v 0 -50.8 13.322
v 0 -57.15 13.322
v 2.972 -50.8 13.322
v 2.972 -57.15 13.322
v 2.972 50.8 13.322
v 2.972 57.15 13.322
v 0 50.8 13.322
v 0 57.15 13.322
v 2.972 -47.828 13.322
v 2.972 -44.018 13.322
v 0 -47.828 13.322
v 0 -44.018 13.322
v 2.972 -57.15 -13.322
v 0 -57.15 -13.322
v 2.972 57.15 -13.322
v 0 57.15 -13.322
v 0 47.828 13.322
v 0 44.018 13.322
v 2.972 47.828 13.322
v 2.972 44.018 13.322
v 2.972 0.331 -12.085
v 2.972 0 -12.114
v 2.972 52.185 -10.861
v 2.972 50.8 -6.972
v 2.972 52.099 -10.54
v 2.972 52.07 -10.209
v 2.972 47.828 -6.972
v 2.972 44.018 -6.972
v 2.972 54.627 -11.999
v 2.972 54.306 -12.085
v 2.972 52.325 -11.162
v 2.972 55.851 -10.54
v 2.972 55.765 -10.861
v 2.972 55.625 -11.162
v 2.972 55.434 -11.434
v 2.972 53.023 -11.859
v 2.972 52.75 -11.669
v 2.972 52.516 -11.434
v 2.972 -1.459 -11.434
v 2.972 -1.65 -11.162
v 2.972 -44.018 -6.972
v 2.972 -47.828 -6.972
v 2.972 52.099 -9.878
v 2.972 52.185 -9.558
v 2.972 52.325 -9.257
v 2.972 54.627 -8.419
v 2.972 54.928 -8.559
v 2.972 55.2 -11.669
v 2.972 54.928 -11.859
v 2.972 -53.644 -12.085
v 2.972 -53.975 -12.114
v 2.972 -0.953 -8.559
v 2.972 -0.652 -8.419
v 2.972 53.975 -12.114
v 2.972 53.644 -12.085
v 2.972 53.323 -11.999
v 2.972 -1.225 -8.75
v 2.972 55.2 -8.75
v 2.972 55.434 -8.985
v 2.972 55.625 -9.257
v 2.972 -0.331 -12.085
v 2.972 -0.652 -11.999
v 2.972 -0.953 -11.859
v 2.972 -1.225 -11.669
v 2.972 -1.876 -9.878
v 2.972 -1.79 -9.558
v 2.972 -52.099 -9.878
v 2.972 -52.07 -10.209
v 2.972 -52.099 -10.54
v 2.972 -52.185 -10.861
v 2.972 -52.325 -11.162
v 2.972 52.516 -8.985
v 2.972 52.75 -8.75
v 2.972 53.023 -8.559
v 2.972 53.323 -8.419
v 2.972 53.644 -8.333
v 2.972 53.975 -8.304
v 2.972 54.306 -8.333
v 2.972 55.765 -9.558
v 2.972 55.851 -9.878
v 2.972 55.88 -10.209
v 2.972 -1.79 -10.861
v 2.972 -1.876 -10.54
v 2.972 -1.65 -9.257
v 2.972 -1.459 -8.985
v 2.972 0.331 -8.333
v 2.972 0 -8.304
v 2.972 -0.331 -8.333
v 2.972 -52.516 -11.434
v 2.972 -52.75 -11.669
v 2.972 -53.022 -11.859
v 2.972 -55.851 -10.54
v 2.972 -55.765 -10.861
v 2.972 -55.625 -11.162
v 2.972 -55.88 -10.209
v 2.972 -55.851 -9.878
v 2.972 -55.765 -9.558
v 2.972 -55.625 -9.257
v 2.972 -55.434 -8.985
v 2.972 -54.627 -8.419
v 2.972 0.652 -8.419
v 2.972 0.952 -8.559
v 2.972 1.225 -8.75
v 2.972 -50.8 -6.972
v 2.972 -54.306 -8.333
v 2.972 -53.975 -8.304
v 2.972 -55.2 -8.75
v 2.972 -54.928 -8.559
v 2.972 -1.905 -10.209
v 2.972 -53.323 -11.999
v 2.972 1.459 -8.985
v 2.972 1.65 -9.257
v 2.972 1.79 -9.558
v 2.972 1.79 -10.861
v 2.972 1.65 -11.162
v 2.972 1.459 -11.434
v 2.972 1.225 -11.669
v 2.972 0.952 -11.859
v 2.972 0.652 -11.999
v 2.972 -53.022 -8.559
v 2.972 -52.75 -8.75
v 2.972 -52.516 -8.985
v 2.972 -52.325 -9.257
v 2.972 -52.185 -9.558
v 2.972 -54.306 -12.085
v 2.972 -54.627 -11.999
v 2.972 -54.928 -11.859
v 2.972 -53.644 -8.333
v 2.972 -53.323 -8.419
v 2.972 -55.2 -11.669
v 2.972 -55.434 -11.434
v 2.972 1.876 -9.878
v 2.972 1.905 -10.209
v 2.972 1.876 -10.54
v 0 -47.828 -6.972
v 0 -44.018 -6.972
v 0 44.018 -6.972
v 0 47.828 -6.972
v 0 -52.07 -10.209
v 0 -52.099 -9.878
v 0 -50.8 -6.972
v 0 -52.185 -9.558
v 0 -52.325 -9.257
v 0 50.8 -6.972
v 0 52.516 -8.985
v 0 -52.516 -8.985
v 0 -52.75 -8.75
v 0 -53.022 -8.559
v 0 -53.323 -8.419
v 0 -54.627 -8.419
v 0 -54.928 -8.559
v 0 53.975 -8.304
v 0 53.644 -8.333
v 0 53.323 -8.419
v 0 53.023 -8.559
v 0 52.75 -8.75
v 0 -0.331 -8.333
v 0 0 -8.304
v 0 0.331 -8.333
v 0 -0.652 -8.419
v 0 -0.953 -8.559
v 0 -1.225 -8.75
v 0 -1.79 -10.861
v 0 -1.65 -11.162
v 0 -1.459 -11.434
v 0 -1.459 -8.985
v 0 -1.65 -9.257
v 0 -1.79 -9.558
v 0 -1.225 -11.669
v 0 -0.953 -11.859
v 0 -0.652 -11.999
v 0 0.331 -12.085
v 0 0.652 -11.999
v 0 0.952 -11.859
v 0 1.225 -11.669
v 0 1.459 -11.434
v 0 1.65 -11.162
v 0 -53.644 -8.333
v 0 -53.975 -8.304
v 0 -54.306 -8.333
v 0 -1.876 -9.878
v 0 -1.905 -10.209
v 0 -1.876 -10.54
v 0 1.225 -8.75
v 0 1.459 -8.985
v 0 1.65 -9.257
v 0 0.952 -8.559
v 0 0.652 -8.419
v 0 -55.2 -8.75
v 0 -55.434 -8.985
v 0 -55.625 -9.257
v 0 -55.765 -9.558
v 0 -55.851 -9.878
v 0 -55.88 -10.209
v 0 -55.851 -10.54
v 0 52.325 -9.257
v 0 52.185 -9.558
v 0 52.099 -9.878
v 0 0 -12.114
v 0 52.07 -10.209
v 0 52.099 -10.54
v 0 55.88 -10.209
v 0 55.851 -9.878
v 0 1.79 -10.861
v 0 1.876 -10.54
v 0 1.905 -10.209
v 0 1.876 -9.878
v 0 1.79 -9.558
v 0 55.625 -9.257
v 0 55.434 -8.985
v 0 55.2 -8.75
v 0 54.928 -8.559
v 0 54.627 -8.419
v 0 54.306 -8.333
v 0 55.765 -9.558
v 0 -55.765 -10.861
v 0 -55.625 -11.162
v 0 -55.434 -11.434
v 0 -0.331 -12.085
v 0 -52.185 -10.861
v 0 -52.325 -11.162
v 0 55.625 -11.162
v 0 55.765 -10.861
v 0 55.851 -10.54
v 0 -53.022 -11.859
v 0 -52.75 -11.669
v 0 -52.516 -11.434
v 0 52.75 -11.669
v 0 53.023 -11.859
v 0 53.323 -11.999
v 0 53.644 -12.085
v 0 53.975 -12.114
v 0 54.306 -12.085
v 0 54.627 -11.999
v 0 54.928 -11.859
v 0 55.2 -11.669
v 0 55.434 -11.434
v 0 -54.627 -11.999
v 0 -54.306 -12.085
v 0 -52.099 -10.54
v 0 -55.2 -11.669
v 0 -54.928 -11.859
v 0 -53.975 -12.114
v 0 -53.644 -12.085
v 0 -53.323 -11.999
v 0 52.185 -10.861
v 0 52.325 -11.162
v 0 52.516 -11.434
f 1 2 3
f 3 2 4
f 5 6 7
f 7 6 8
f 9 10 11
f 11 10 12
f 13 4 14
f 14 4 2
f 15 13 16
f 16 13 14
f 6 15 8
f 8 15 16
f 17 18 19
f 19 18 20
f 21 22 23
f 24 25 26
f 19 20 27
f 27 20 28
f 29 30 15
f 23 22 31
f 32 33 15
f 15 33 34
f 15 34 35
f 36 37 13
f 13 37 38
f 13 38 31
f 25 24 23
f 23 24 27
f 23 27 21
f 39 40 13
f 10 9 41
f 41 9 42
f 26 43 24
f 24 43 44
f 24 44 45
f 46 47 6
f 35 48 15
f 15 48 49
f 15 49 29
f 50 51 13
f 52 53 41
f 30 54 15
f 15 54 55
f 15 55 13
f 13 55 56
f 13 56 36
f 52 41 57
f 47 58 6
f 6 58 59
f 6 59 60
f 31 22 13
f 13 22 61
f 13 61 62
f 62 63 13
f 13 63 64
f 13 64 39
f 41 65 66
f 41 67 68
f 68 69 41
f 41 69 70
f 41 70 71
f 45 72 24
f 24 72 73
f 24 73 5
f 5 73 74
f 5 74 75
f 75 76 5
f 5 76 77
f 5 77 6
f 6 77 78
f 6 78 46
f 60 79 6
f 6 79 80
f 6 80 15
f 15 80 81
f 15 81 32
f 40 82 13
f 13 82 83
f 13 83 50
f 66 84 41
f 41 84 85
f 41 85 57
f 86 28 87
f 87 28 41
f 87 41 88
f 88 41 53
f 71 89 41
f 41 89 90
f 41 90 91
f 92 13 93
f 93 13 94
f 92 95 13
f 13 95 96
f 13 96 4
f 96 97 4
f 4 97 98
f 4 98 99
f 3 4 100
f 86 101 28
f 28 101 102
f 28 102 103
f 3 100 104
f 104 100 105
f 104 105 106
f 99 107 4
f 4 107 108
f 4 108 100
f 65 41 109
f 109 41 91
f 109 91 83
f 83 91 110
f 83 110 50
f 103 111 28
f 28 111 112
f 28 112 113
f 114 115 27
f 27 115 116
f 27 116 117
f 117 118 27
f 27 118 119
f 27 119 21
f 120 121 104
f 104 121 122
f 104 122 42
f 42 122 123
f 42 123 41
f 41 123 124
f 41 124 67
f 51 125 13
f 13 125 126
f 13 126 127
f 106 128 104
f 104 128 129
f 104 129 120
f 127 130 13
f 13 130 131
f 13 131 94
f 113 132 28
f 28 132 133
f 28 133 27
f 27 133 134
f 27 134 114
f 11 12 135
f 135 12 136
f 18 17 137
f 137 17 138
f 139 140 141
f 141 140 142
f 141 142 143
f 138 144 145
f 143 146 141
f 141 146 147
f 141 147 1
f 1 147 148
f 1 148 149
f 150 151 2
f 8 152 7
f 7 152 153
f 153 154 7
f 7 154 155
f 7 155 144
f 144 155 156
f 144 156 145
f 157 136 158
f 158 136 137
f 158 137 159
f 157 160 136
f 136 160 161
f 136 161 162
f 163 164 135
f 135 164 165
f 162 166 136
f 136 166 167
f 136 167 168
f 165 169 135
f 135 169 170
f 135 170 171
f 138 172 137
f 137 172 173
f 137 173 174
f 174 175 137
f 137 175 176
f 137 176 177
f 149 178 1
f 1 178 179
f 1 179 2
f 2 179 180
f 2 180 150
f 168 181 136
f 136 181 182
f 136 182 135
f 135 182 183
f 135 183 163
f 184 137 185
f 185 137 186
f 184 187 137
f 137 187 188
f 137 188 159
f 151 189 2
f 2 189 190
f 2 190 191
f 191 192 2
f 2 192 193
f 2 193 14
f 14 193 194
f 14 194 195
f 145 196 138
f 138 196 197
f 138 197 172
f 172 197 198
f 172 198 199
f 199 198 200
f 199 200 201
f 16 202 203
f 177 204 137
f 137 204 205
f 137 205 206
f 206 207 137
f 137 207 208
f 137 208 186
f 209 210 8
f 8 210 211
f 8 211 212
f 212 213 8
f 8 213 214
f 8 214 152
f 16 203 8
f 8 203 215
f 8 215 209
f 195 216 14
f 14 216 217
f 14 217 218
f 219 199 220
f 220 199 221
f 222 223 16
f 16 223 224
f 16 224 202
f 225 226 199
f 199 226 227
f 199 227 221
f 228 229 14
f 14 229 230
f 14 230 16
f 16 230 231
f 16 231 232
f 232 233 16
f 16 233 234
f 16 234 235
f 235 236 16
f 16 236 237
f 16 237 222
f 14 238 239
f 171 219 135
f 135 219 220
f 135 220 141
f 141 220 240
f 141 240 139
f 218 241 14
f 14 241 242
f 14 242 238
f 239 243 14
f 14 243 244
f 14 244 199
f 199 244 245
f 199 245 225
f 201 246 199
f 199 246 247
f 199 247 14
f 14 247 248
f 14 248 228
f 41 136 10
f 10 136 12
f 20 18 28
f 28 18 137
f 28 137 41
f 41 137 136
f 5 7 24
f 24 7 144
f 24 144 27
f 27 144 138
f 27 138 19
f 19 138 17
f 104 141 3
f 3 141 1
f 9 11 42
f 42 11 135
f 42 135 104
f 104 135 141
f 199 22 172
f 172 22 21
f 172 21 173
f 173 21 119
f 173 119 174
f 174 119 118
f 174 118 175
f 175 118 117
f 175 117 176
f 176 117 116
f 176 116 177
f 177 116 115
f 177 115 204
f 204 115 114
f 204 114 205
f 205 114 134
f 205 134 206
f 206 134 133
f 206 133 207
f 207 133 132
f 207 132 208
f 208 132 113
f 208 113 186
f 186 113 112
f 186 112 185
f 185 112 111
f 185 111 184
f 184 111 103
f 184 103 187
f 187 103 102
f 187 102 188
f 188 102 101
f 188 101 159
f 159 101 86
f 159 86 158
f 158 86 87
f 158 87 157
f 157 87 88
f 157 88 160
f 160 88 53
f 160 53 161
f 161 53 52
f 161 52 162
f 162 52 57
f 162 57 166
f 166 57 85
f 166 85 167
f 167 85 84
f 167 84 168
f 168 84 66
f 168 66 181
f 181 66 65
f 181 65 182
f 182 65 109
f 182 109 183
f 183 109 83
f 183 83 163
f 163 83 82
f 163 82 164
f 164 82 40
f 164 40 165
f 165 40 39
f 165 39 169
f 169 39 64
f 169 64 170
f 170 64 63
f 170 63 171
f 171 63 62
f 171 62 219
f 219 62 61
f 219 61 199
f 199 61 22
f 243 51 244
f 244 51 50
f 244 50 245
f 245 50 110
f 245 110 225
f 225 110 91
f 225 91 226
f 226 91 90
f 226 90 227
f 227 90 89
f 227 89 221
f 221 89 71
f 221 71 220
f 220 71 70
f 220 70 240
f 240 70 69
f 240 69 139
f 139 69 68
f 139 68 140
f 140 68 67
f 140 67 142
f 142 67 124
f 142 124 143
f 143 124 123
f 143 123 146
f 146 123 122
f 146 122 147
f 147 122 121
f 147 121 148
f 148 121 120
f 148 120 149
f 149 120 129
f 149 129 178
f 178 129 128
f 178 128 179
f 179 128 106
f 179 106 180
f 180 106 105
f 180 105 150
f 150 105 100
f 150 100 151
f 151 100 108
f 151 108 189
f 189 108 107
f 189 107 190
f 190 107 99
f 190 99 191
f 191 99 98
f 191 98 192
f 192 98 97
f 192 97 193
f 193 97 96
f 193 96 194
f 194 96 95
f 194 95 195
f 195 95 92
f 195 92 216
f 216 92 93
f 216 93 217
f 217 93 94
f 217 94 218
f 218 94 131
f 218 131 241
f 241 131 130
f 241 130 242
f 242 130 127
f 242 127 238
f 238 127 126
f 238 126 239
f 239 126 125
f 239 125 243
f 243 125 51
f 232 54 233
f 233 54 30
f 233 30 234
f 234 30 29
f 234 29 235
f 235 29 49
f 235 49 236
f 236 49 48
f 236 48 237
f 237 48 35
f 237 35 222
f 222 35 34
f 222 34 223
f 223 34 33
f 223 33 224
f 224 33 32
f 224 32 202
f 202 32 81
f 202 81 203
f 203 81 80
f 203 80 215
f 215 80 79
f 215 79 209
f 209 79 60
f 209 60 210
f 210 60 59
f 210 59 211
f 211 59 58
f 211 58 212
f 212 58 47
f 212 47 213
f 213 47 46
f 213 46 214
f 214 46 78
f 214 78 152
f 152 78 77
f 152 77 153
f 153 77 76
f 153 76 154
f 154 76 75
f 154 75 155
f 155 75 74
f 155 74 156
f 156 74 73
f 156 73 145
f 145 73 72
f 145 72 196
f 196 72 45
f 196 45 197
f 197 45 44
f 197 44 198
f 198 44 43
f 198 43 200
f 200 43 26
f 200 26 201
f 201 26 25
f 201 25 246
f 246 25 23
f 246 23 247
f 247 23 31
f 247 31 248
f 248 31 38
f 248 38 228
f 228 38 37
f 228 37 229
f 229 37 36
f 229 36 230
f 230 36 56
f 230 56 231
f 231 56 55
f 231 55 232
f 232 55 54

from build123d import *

# Parameters (mm, degrees)
SKETCH1_W           = 114.3
SKETCH1_H           = 26.643356644
BOSS_EXTRUDE1_DEPTH = 2.9718
SKETCH2_W           = 2.9718
SKETCH2_H           = 20.293356644
SKETCH2_W_2         = 88.0364
CUT_EXTRUDE1_DEPTH  = 3.175
SKETCH3_R           = 1.905
CUT_EXTRUDE2_DEPTH  = 3.175


with BuildPart() as part:
    # Sketch1 → Boss-Extrude1 (new body)
    with BuildSketch(Plane.YZ):
        Rectangle(SKETCH1_W, SKETCH1_H)
    extrude(amount=BOSS_EXTRUDE1_DEPTH)

    # Sketch2 → Cut-Extrude1 (cut)
    with BuildSketch(Plane.YZ.offset(2.9718)):
        with Locations((-49.3141, 3.175)):
            Rectangle(SKETCH2_W, SKETCH2_H)
        with Locations((49.3141, 3.175)):
            Rectangle(SKETCH2_W, SKETCH2_H)
        with Locations((0, 3.175)):
            Rectangle(SKETCH2_W_2, SKETCH2_H)
    extrude(amount=-CUT_EXTRUDE1_DEPTH, mode=Mode.SUBTRACT)

    # Sketch3 → Cut-Extrude2 (cut)
    with BuildSketch(Plane.YZ.offset(2.9718)):
        with Locations(Location((0, -10.209266023, 0), (0, 0, 270))):
            Circle(SKETCH3_R)
        with Locations(Location((-53.975, -10.209266023, 0), (0, 0, 270))):
            Circle(SKETCH3_R)
        with Locations(Location((53.975, -10.209266023, 0), (0, 0, 270))):
            Circle(SKETCH3_R)
    extrude(amount=-CUT_EXTRUDE2_DEPTH, mode=Mode.SUBTRACT)


solid = part.part
